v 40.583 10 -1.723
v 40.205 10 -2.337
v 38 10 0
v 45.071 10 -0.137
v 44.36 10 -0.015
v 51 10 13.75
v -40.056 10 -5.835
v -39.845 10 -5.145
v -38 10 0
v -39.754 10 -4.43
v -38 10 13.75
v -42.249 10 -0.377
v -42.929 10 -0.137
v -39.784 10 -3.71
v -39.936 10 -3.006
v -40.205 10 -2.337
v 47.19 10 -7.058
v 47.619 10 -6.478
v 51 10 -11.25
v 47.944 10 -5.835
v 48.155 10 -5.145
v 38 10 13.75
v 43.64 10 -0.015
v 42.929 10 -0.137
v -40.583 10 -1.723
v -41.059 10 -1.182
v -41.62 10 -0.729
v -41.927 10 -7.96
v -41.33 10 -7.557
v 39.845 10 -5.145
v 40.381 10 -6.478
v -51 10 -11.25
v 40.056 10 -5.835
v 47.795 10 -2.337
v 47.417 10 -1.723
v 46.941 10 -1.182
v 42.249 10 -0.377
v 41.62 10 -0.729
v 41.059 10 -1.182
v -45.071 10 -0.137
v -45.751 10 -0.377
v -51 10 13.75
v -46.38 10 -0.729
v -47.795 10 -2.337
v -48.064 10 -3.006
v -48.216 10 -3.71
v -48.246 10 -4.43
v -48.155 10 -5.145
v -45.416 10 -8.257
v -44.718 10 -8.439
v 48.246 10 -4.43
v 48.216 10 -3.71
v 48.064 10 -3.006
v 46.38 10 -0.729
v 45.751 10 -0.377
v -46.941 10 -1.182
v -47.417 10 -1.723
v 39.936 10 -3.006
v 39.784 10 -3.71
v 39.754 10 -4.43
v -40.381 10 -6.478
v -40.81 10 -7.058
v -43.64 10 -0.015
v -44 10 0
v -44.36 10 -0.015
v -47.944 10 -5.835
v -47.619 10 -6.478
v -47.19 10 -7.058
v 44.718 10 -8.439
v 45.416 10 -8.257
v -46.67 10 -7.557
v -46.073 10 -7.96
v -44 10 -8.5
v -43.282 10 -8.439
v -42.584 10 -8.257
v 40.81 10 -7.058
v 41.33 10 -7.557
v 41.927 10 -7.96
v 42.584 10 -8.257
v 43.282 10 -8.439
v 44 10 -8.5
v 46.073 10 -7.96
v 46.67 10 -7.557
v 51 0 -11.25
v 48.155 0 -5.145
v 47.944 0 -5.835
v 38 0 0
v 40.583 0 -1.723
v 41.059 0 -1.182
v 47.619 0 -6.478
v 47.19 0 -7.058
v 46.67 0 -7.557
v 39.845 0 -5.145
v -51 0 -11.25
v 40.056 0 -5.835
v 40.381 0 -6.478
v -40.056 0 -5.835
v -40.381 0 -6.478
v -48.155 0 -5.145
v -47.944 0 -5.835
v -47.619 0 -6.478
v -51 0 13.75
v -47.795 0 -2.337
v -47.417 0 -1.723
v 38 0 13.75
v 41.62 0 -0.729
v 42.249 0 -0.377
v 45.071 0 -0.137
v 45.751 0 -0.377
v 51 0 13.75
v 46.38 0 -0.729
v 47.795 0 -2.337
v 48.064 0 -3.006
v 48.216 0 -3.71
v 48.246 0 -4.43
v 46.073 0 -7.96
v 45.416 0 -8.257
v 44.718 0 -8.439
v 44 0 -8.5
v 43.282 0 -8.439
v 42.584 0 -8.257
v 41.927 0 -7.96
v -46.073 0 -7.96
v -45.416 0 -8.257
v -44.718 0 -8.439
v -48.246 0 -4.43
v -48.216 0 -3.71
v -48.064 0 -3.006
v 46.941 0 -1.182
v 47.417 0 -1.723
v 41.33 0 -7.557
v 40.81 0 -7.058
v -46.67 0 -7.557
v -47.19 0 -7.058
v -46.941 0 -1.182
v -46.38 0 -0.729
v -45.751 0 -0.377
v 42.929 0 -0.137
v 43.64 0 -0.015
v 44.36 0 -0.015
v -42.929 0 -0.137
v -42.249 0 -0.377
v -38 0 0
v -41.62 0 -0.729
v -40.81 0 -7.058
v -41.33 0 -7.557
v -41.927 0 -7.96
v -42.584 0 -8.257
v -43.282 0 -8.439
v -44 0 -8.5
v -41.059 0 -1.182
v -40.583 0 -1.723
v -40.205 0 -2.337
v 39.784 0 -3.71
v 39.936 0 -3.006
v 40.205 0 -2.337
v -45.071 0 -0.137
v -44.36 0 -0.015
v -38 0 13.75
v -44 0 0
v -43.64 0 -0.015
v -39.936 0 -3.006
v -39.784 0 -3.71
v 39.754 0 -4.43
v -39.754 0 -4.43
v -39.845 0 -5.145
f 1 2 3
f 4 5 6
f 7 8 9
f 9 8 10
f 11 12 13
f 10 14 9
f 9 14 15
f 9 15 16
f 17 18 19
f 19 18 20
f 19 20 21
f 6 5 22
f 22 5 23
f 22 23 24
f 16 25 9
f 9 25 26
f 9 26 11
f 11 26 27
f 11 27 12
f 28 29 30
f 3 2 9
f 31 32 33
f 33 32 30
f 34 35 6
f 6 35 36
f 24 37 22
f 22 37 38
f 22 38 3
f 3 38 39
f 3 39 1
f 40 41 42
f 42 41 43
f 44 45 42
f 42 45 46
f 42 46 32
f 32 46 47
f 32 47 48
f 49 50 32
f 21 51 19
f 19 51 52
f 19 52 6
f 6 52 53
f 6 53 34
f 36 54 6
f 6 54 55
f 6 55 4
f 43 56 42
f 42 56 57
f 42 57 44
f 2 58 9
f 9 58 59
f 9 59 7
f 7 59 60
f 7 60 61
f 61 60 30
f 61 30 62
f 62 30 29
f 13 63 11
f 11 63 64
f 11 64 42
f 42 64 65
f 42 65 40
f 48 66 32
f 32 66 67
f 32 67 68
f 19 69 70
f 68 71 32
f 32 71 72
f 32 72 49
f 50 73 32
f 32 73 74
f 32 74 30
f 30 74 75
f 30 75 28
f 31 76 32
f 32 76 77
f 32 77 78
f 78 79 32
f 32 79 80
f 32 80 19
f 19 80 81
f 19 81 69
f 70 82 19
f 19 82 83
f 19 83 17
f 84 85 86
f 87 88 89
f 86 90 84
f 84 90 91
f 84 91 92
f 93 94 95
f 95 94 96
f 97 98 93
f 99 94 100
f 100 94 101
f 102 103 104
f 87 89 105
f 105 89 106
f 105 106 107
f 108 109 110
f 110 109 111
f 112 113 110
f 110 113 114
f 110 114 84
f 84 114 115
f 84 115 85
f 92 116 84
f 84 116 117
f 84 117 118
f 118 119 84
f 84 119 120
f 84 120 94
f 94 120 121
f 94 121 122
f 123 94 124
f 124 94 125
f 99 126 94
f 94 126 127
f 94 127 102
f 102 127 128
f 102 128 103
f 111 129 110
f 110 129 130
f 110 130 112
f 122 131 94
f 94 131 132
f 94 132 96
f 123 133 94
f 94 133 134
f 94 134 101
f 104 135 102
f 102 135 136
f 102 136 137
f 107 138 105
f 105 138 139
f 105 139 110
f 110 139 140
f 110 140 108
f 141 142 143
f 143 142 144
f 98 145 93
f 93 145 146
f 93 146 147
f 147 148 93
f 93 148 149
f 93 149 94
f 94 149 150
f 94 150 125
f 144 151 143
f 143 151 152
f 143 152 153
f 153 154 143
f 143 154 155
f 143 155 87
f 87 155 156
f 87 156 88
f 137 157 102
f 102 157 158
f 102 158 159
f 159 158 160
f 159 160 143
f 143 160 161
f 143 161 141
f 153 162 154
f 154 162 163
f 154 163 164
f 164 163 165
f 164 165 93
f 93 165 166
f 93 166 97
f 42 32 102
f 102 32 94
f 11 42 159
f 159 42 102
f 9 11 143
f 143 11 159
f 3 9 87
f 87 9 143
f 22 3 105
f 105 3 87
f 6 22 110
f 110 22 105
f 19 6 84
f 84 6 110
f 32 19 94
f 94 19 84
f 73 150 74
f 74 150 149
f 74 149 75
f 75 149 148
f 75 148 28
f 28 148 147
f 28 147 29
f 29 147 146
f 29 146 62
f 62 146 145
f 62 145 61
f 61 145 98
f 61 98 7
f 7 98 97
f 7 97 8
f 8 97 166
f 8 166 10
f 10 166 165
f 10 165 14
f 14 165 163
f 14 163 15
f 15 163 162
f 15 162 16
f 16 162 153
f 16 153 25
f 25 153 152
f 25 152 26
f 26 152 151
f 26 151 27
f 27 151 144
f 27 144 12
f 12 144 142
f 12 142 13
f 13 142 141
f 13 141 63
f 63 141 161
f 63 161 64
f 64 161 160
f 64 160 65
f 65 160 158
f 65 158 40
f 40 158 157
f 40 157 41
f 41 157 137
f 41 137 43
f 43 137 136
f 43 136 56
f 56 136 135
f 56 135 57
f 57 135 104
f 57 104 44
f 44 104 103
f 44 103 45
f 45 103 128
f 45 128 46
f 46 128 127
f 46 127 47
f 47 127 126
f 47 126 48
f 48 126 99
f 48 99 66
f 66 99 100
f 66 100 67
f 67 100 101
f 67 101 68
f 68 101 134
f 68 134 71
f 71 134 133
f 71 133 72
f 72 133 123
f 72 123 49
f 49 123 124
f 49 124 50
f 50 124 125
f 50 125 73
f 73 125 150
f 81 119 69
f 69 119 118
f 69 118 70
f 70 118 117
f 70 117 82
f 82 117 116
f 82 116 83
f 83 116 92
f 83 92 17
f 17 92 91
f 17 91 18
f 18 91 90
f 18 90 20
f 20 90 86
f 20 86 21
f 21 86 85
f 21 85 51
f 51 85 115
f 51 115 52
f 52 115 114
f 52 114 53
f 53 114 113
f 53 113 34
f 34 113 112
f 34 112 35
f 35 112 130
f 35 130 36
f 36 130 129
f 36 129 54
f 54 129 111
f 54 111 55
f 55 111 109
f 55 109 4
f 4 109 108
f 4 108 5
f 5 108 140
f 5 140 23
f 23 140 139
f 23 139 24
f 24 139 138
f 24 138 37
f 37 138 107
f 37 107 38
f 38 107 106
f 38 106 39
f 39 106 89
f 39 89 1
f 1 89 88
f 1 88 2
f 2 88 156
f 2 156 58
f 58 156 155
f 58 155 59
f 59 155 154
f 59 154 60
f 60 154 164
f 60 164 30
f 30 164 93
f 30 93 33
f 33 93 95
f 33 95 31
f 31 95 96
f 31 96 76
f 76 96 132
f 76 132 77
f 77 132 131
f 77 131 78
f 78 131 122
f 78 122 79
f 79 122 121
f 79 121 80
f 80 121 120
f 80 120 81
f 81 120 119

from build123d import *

# Parameters (mm, degrees)
SKETCH1_R           = 4.25
BOSS_EXTRUDE1_DEPTH = 10


with BuildPart() as part:
    # Sketch1 → Boss-Extrude1 (new body)
    with BuildSketch(Plane(origin=(0, 0, 0), x_dir=(1, 0, 0), z_dir=(0, 1, 0))):
        Polygon((-51, 11.25), (51, 11.25), (51, 0), (51, -13.75), (38, -13.75), (38, 0), (-38, 0), (-38, -13.75), (-51, -13.75), align=None)
        with Locations(Location((-44, 4.25, 0), (0, 0, 270))):
            Circle(SKETCH1_R, mode=Mode.SUBTRACT)
        with Locations(Location((44, 4.25, 0), (0, 0, 90))):
            Circle(SKETCH1_R, mode=Mode.SUBTRACT)
    extrude(amount=BOSS_EXTRUDE1_DEPTH)


solid = part.part
